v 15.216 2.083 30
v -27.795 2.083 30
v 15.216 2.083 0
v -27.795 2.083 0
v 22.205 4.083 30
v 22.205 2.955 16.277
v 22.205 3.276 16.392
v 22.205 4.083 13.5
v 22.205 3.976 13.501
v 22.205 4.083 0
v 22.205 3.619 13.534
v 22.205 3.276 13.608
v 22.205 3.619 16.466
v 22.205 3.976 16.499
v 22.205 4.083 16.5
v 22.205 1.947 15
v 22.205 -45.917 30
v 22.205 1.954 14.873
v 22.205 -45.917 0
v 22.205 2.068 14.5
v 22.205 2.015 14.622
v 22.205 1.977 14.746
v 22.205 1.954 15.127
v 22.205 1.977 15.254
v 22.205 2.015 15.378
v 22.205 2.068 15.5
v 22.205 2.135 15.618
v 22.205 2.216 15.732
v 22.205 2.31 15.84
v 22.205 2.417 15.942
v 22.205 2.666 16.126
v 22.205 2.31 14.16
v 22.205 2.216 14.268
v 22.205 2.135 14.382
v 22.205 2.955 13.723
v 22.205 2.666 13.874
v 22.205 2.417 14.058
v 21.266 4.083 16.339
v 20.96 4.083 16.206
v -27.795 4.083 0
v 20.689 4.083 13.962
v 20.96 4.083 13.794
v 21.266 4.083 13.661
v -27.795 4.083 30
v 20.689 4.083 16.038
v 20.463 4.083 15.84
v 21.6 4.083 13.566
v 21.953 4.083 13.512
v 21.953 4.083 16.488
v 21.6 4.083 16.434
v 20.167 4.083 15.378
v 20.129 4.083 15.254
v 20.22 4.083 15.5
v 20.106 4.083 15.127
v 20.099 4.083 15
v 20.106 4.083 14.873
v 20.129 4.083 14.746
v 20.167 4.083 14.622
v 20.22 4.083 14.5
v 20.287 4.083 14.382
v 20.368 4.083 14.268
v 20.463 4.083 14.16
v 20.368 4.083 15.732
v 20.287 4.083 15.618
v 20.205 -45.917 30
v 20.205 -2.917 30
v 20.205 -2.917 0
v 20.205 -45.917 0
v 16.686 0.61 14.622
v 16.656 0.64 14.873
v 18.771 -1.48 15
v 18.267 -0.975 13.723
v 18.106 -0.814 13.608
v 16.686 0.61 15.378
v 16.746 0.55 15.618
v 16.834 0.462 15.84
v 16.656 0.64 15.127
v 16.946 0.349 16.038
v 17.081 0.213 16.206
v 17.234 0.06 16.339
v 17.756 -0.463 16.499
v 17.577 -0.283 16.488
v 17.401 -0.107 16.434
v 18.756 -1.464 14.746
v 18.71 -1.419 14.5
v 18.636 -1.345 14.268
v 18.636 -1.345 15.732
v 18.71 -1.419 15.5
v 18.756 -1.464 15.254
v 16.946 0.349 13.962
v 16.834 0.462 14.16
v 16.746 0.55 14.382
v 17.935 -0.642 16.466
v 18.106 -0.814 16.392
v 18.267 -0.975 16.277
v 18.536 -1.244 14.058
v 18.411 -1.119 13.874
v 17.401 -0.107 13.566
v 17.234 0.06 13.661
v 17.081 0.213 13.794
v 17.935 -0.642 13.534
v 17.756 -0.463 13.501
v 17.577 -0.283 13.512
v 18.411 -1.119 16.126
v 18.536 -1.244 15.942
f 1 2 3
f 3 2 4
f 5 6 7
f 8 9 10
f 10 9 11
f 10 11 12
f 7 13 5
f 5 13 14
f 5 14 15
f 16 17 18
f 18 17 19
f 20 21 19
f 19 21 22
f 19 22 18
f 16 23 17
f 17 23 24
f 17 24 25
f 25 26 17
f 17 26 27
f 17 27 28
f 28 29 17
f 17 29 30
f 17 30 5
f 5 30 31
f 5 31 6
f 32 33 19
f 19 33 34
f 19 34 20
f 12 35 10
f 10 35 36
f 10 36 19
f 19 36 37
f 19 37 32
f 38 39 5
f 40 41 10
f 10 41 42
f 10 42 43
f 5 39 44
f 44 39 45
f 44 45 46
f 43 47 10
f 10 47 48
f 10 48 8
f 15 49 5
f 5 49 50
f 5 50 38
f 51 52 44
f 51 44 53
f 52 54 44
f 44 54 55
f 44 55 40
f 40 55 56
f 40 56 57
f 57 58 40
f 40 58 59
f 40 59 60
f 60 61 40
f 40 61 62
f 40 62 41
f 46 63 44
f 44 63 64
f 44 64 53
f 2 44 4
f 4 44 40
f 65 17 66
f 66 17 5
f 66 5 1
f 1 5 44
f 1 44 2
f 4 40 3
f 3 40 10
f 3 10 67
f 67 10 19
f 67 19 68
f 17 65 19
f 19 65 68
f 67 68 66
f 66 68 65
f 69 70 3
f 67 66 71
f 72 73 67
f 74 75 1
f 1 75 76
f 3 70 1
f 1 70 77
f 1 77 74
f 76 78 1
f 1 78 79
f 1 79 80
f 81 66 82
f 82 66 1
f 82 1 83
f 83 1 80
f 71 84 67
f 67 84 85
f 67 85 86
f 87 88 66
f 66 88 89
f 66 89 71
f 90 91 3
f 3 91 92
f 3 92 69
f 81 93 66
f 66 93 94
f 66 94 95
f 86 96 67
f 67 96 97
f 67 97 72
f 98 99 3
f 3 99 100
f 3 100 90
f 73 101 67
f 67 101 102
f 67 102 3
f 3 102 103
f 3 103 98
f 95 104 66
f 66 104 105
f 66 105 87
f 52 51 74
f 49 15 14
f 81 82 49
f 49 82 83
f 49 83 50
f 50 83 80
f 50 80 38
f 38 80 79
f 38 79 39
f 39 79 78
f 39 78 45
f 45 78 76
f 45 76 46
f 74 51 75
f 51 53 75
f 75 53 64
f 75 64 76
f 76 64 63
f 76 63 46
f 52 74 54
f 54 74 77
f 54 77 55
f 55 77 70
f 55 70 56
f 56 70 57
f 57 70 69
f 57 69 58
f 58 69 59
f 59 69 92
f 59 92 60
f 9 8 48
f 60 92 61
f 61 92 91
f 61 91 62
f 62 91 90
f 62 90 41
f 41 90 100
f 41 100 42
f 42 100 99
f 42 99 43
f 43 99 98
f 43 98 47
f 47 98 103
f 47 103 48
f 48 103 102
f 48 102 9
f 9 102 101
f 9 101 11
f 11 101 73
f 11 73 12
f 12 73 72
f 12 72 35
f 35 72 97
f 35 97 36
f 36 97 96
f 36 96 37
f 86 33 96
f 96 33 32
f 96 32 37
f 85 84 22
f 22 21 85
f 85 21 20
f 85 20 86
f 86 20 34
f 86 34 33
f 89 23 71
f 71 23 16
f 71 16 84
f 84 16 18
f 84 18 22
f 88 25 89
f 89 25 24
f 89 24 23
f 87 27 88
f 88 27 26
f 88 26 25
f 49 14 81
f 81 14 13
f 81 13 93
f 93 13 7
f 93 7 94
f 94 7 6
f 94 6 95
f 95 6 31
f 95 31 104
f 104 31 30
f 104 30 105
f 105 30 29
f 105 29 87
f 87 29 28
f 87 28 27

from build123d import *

# Parameters (mm, degrees)
AUFSATZ_LINEAR_AUSTRAGEN1_DEPTH = 30
AUFSATZ_LINEAR_AUSTRAGEN2_DEPTH = 30
SKIZZE3_R                       = 1.5
SCHNITT_LINEAR_AUSTRAGEN1_DEPTH = 30


with BuildPart() as part:
    # Skizze1 → Aufsatz-Linear austragen1 (new body)
    with BuildSketch(Plane.XY):
        Polygon((22.204821564, 4.083333333), (-27.795178436, 4.083333333), (-27.795178436, 2.083333333), (20.204821564, 2.083333333), (20.204821564, -45.916666667), (22.204821564, -45.916666667), align=None)
    extrude(amount=AUFSATZ_LINEAR_AUSTRAGEN1_DEPTH)

    # Skizze2 → Aufsatz-Linear austragen2 (add)
    with BuildSketch(Plane.XY.offset(30)):
        Polygon((15.215533088, 2.083333333), (20.204821564, -2.916666667), (20.204821564, 2.083333333), align=None)
    extrude(amount=-AUFSATZ_LINEAR_AUSTRAGEN2_DEPTH)

    # Skizze3 → Schnitt-Linear austragen1 (cut)
    with BuildSketch(Plane(origin=(8.665746428, 8.647181758, 0), x_dir=(0, 0, 1), z_dir=(-0.7078646055315657, -0.7063481437900443, 0))):
        with Locations((15, -12.806243307)):
            Circle(SKIZZE3_R)
    extrude(amount=-SCHNITT_LINEAR_AUSTRAGEN1_DEPTH, mode=Mode.SUBTRACT)


solid = part.part
